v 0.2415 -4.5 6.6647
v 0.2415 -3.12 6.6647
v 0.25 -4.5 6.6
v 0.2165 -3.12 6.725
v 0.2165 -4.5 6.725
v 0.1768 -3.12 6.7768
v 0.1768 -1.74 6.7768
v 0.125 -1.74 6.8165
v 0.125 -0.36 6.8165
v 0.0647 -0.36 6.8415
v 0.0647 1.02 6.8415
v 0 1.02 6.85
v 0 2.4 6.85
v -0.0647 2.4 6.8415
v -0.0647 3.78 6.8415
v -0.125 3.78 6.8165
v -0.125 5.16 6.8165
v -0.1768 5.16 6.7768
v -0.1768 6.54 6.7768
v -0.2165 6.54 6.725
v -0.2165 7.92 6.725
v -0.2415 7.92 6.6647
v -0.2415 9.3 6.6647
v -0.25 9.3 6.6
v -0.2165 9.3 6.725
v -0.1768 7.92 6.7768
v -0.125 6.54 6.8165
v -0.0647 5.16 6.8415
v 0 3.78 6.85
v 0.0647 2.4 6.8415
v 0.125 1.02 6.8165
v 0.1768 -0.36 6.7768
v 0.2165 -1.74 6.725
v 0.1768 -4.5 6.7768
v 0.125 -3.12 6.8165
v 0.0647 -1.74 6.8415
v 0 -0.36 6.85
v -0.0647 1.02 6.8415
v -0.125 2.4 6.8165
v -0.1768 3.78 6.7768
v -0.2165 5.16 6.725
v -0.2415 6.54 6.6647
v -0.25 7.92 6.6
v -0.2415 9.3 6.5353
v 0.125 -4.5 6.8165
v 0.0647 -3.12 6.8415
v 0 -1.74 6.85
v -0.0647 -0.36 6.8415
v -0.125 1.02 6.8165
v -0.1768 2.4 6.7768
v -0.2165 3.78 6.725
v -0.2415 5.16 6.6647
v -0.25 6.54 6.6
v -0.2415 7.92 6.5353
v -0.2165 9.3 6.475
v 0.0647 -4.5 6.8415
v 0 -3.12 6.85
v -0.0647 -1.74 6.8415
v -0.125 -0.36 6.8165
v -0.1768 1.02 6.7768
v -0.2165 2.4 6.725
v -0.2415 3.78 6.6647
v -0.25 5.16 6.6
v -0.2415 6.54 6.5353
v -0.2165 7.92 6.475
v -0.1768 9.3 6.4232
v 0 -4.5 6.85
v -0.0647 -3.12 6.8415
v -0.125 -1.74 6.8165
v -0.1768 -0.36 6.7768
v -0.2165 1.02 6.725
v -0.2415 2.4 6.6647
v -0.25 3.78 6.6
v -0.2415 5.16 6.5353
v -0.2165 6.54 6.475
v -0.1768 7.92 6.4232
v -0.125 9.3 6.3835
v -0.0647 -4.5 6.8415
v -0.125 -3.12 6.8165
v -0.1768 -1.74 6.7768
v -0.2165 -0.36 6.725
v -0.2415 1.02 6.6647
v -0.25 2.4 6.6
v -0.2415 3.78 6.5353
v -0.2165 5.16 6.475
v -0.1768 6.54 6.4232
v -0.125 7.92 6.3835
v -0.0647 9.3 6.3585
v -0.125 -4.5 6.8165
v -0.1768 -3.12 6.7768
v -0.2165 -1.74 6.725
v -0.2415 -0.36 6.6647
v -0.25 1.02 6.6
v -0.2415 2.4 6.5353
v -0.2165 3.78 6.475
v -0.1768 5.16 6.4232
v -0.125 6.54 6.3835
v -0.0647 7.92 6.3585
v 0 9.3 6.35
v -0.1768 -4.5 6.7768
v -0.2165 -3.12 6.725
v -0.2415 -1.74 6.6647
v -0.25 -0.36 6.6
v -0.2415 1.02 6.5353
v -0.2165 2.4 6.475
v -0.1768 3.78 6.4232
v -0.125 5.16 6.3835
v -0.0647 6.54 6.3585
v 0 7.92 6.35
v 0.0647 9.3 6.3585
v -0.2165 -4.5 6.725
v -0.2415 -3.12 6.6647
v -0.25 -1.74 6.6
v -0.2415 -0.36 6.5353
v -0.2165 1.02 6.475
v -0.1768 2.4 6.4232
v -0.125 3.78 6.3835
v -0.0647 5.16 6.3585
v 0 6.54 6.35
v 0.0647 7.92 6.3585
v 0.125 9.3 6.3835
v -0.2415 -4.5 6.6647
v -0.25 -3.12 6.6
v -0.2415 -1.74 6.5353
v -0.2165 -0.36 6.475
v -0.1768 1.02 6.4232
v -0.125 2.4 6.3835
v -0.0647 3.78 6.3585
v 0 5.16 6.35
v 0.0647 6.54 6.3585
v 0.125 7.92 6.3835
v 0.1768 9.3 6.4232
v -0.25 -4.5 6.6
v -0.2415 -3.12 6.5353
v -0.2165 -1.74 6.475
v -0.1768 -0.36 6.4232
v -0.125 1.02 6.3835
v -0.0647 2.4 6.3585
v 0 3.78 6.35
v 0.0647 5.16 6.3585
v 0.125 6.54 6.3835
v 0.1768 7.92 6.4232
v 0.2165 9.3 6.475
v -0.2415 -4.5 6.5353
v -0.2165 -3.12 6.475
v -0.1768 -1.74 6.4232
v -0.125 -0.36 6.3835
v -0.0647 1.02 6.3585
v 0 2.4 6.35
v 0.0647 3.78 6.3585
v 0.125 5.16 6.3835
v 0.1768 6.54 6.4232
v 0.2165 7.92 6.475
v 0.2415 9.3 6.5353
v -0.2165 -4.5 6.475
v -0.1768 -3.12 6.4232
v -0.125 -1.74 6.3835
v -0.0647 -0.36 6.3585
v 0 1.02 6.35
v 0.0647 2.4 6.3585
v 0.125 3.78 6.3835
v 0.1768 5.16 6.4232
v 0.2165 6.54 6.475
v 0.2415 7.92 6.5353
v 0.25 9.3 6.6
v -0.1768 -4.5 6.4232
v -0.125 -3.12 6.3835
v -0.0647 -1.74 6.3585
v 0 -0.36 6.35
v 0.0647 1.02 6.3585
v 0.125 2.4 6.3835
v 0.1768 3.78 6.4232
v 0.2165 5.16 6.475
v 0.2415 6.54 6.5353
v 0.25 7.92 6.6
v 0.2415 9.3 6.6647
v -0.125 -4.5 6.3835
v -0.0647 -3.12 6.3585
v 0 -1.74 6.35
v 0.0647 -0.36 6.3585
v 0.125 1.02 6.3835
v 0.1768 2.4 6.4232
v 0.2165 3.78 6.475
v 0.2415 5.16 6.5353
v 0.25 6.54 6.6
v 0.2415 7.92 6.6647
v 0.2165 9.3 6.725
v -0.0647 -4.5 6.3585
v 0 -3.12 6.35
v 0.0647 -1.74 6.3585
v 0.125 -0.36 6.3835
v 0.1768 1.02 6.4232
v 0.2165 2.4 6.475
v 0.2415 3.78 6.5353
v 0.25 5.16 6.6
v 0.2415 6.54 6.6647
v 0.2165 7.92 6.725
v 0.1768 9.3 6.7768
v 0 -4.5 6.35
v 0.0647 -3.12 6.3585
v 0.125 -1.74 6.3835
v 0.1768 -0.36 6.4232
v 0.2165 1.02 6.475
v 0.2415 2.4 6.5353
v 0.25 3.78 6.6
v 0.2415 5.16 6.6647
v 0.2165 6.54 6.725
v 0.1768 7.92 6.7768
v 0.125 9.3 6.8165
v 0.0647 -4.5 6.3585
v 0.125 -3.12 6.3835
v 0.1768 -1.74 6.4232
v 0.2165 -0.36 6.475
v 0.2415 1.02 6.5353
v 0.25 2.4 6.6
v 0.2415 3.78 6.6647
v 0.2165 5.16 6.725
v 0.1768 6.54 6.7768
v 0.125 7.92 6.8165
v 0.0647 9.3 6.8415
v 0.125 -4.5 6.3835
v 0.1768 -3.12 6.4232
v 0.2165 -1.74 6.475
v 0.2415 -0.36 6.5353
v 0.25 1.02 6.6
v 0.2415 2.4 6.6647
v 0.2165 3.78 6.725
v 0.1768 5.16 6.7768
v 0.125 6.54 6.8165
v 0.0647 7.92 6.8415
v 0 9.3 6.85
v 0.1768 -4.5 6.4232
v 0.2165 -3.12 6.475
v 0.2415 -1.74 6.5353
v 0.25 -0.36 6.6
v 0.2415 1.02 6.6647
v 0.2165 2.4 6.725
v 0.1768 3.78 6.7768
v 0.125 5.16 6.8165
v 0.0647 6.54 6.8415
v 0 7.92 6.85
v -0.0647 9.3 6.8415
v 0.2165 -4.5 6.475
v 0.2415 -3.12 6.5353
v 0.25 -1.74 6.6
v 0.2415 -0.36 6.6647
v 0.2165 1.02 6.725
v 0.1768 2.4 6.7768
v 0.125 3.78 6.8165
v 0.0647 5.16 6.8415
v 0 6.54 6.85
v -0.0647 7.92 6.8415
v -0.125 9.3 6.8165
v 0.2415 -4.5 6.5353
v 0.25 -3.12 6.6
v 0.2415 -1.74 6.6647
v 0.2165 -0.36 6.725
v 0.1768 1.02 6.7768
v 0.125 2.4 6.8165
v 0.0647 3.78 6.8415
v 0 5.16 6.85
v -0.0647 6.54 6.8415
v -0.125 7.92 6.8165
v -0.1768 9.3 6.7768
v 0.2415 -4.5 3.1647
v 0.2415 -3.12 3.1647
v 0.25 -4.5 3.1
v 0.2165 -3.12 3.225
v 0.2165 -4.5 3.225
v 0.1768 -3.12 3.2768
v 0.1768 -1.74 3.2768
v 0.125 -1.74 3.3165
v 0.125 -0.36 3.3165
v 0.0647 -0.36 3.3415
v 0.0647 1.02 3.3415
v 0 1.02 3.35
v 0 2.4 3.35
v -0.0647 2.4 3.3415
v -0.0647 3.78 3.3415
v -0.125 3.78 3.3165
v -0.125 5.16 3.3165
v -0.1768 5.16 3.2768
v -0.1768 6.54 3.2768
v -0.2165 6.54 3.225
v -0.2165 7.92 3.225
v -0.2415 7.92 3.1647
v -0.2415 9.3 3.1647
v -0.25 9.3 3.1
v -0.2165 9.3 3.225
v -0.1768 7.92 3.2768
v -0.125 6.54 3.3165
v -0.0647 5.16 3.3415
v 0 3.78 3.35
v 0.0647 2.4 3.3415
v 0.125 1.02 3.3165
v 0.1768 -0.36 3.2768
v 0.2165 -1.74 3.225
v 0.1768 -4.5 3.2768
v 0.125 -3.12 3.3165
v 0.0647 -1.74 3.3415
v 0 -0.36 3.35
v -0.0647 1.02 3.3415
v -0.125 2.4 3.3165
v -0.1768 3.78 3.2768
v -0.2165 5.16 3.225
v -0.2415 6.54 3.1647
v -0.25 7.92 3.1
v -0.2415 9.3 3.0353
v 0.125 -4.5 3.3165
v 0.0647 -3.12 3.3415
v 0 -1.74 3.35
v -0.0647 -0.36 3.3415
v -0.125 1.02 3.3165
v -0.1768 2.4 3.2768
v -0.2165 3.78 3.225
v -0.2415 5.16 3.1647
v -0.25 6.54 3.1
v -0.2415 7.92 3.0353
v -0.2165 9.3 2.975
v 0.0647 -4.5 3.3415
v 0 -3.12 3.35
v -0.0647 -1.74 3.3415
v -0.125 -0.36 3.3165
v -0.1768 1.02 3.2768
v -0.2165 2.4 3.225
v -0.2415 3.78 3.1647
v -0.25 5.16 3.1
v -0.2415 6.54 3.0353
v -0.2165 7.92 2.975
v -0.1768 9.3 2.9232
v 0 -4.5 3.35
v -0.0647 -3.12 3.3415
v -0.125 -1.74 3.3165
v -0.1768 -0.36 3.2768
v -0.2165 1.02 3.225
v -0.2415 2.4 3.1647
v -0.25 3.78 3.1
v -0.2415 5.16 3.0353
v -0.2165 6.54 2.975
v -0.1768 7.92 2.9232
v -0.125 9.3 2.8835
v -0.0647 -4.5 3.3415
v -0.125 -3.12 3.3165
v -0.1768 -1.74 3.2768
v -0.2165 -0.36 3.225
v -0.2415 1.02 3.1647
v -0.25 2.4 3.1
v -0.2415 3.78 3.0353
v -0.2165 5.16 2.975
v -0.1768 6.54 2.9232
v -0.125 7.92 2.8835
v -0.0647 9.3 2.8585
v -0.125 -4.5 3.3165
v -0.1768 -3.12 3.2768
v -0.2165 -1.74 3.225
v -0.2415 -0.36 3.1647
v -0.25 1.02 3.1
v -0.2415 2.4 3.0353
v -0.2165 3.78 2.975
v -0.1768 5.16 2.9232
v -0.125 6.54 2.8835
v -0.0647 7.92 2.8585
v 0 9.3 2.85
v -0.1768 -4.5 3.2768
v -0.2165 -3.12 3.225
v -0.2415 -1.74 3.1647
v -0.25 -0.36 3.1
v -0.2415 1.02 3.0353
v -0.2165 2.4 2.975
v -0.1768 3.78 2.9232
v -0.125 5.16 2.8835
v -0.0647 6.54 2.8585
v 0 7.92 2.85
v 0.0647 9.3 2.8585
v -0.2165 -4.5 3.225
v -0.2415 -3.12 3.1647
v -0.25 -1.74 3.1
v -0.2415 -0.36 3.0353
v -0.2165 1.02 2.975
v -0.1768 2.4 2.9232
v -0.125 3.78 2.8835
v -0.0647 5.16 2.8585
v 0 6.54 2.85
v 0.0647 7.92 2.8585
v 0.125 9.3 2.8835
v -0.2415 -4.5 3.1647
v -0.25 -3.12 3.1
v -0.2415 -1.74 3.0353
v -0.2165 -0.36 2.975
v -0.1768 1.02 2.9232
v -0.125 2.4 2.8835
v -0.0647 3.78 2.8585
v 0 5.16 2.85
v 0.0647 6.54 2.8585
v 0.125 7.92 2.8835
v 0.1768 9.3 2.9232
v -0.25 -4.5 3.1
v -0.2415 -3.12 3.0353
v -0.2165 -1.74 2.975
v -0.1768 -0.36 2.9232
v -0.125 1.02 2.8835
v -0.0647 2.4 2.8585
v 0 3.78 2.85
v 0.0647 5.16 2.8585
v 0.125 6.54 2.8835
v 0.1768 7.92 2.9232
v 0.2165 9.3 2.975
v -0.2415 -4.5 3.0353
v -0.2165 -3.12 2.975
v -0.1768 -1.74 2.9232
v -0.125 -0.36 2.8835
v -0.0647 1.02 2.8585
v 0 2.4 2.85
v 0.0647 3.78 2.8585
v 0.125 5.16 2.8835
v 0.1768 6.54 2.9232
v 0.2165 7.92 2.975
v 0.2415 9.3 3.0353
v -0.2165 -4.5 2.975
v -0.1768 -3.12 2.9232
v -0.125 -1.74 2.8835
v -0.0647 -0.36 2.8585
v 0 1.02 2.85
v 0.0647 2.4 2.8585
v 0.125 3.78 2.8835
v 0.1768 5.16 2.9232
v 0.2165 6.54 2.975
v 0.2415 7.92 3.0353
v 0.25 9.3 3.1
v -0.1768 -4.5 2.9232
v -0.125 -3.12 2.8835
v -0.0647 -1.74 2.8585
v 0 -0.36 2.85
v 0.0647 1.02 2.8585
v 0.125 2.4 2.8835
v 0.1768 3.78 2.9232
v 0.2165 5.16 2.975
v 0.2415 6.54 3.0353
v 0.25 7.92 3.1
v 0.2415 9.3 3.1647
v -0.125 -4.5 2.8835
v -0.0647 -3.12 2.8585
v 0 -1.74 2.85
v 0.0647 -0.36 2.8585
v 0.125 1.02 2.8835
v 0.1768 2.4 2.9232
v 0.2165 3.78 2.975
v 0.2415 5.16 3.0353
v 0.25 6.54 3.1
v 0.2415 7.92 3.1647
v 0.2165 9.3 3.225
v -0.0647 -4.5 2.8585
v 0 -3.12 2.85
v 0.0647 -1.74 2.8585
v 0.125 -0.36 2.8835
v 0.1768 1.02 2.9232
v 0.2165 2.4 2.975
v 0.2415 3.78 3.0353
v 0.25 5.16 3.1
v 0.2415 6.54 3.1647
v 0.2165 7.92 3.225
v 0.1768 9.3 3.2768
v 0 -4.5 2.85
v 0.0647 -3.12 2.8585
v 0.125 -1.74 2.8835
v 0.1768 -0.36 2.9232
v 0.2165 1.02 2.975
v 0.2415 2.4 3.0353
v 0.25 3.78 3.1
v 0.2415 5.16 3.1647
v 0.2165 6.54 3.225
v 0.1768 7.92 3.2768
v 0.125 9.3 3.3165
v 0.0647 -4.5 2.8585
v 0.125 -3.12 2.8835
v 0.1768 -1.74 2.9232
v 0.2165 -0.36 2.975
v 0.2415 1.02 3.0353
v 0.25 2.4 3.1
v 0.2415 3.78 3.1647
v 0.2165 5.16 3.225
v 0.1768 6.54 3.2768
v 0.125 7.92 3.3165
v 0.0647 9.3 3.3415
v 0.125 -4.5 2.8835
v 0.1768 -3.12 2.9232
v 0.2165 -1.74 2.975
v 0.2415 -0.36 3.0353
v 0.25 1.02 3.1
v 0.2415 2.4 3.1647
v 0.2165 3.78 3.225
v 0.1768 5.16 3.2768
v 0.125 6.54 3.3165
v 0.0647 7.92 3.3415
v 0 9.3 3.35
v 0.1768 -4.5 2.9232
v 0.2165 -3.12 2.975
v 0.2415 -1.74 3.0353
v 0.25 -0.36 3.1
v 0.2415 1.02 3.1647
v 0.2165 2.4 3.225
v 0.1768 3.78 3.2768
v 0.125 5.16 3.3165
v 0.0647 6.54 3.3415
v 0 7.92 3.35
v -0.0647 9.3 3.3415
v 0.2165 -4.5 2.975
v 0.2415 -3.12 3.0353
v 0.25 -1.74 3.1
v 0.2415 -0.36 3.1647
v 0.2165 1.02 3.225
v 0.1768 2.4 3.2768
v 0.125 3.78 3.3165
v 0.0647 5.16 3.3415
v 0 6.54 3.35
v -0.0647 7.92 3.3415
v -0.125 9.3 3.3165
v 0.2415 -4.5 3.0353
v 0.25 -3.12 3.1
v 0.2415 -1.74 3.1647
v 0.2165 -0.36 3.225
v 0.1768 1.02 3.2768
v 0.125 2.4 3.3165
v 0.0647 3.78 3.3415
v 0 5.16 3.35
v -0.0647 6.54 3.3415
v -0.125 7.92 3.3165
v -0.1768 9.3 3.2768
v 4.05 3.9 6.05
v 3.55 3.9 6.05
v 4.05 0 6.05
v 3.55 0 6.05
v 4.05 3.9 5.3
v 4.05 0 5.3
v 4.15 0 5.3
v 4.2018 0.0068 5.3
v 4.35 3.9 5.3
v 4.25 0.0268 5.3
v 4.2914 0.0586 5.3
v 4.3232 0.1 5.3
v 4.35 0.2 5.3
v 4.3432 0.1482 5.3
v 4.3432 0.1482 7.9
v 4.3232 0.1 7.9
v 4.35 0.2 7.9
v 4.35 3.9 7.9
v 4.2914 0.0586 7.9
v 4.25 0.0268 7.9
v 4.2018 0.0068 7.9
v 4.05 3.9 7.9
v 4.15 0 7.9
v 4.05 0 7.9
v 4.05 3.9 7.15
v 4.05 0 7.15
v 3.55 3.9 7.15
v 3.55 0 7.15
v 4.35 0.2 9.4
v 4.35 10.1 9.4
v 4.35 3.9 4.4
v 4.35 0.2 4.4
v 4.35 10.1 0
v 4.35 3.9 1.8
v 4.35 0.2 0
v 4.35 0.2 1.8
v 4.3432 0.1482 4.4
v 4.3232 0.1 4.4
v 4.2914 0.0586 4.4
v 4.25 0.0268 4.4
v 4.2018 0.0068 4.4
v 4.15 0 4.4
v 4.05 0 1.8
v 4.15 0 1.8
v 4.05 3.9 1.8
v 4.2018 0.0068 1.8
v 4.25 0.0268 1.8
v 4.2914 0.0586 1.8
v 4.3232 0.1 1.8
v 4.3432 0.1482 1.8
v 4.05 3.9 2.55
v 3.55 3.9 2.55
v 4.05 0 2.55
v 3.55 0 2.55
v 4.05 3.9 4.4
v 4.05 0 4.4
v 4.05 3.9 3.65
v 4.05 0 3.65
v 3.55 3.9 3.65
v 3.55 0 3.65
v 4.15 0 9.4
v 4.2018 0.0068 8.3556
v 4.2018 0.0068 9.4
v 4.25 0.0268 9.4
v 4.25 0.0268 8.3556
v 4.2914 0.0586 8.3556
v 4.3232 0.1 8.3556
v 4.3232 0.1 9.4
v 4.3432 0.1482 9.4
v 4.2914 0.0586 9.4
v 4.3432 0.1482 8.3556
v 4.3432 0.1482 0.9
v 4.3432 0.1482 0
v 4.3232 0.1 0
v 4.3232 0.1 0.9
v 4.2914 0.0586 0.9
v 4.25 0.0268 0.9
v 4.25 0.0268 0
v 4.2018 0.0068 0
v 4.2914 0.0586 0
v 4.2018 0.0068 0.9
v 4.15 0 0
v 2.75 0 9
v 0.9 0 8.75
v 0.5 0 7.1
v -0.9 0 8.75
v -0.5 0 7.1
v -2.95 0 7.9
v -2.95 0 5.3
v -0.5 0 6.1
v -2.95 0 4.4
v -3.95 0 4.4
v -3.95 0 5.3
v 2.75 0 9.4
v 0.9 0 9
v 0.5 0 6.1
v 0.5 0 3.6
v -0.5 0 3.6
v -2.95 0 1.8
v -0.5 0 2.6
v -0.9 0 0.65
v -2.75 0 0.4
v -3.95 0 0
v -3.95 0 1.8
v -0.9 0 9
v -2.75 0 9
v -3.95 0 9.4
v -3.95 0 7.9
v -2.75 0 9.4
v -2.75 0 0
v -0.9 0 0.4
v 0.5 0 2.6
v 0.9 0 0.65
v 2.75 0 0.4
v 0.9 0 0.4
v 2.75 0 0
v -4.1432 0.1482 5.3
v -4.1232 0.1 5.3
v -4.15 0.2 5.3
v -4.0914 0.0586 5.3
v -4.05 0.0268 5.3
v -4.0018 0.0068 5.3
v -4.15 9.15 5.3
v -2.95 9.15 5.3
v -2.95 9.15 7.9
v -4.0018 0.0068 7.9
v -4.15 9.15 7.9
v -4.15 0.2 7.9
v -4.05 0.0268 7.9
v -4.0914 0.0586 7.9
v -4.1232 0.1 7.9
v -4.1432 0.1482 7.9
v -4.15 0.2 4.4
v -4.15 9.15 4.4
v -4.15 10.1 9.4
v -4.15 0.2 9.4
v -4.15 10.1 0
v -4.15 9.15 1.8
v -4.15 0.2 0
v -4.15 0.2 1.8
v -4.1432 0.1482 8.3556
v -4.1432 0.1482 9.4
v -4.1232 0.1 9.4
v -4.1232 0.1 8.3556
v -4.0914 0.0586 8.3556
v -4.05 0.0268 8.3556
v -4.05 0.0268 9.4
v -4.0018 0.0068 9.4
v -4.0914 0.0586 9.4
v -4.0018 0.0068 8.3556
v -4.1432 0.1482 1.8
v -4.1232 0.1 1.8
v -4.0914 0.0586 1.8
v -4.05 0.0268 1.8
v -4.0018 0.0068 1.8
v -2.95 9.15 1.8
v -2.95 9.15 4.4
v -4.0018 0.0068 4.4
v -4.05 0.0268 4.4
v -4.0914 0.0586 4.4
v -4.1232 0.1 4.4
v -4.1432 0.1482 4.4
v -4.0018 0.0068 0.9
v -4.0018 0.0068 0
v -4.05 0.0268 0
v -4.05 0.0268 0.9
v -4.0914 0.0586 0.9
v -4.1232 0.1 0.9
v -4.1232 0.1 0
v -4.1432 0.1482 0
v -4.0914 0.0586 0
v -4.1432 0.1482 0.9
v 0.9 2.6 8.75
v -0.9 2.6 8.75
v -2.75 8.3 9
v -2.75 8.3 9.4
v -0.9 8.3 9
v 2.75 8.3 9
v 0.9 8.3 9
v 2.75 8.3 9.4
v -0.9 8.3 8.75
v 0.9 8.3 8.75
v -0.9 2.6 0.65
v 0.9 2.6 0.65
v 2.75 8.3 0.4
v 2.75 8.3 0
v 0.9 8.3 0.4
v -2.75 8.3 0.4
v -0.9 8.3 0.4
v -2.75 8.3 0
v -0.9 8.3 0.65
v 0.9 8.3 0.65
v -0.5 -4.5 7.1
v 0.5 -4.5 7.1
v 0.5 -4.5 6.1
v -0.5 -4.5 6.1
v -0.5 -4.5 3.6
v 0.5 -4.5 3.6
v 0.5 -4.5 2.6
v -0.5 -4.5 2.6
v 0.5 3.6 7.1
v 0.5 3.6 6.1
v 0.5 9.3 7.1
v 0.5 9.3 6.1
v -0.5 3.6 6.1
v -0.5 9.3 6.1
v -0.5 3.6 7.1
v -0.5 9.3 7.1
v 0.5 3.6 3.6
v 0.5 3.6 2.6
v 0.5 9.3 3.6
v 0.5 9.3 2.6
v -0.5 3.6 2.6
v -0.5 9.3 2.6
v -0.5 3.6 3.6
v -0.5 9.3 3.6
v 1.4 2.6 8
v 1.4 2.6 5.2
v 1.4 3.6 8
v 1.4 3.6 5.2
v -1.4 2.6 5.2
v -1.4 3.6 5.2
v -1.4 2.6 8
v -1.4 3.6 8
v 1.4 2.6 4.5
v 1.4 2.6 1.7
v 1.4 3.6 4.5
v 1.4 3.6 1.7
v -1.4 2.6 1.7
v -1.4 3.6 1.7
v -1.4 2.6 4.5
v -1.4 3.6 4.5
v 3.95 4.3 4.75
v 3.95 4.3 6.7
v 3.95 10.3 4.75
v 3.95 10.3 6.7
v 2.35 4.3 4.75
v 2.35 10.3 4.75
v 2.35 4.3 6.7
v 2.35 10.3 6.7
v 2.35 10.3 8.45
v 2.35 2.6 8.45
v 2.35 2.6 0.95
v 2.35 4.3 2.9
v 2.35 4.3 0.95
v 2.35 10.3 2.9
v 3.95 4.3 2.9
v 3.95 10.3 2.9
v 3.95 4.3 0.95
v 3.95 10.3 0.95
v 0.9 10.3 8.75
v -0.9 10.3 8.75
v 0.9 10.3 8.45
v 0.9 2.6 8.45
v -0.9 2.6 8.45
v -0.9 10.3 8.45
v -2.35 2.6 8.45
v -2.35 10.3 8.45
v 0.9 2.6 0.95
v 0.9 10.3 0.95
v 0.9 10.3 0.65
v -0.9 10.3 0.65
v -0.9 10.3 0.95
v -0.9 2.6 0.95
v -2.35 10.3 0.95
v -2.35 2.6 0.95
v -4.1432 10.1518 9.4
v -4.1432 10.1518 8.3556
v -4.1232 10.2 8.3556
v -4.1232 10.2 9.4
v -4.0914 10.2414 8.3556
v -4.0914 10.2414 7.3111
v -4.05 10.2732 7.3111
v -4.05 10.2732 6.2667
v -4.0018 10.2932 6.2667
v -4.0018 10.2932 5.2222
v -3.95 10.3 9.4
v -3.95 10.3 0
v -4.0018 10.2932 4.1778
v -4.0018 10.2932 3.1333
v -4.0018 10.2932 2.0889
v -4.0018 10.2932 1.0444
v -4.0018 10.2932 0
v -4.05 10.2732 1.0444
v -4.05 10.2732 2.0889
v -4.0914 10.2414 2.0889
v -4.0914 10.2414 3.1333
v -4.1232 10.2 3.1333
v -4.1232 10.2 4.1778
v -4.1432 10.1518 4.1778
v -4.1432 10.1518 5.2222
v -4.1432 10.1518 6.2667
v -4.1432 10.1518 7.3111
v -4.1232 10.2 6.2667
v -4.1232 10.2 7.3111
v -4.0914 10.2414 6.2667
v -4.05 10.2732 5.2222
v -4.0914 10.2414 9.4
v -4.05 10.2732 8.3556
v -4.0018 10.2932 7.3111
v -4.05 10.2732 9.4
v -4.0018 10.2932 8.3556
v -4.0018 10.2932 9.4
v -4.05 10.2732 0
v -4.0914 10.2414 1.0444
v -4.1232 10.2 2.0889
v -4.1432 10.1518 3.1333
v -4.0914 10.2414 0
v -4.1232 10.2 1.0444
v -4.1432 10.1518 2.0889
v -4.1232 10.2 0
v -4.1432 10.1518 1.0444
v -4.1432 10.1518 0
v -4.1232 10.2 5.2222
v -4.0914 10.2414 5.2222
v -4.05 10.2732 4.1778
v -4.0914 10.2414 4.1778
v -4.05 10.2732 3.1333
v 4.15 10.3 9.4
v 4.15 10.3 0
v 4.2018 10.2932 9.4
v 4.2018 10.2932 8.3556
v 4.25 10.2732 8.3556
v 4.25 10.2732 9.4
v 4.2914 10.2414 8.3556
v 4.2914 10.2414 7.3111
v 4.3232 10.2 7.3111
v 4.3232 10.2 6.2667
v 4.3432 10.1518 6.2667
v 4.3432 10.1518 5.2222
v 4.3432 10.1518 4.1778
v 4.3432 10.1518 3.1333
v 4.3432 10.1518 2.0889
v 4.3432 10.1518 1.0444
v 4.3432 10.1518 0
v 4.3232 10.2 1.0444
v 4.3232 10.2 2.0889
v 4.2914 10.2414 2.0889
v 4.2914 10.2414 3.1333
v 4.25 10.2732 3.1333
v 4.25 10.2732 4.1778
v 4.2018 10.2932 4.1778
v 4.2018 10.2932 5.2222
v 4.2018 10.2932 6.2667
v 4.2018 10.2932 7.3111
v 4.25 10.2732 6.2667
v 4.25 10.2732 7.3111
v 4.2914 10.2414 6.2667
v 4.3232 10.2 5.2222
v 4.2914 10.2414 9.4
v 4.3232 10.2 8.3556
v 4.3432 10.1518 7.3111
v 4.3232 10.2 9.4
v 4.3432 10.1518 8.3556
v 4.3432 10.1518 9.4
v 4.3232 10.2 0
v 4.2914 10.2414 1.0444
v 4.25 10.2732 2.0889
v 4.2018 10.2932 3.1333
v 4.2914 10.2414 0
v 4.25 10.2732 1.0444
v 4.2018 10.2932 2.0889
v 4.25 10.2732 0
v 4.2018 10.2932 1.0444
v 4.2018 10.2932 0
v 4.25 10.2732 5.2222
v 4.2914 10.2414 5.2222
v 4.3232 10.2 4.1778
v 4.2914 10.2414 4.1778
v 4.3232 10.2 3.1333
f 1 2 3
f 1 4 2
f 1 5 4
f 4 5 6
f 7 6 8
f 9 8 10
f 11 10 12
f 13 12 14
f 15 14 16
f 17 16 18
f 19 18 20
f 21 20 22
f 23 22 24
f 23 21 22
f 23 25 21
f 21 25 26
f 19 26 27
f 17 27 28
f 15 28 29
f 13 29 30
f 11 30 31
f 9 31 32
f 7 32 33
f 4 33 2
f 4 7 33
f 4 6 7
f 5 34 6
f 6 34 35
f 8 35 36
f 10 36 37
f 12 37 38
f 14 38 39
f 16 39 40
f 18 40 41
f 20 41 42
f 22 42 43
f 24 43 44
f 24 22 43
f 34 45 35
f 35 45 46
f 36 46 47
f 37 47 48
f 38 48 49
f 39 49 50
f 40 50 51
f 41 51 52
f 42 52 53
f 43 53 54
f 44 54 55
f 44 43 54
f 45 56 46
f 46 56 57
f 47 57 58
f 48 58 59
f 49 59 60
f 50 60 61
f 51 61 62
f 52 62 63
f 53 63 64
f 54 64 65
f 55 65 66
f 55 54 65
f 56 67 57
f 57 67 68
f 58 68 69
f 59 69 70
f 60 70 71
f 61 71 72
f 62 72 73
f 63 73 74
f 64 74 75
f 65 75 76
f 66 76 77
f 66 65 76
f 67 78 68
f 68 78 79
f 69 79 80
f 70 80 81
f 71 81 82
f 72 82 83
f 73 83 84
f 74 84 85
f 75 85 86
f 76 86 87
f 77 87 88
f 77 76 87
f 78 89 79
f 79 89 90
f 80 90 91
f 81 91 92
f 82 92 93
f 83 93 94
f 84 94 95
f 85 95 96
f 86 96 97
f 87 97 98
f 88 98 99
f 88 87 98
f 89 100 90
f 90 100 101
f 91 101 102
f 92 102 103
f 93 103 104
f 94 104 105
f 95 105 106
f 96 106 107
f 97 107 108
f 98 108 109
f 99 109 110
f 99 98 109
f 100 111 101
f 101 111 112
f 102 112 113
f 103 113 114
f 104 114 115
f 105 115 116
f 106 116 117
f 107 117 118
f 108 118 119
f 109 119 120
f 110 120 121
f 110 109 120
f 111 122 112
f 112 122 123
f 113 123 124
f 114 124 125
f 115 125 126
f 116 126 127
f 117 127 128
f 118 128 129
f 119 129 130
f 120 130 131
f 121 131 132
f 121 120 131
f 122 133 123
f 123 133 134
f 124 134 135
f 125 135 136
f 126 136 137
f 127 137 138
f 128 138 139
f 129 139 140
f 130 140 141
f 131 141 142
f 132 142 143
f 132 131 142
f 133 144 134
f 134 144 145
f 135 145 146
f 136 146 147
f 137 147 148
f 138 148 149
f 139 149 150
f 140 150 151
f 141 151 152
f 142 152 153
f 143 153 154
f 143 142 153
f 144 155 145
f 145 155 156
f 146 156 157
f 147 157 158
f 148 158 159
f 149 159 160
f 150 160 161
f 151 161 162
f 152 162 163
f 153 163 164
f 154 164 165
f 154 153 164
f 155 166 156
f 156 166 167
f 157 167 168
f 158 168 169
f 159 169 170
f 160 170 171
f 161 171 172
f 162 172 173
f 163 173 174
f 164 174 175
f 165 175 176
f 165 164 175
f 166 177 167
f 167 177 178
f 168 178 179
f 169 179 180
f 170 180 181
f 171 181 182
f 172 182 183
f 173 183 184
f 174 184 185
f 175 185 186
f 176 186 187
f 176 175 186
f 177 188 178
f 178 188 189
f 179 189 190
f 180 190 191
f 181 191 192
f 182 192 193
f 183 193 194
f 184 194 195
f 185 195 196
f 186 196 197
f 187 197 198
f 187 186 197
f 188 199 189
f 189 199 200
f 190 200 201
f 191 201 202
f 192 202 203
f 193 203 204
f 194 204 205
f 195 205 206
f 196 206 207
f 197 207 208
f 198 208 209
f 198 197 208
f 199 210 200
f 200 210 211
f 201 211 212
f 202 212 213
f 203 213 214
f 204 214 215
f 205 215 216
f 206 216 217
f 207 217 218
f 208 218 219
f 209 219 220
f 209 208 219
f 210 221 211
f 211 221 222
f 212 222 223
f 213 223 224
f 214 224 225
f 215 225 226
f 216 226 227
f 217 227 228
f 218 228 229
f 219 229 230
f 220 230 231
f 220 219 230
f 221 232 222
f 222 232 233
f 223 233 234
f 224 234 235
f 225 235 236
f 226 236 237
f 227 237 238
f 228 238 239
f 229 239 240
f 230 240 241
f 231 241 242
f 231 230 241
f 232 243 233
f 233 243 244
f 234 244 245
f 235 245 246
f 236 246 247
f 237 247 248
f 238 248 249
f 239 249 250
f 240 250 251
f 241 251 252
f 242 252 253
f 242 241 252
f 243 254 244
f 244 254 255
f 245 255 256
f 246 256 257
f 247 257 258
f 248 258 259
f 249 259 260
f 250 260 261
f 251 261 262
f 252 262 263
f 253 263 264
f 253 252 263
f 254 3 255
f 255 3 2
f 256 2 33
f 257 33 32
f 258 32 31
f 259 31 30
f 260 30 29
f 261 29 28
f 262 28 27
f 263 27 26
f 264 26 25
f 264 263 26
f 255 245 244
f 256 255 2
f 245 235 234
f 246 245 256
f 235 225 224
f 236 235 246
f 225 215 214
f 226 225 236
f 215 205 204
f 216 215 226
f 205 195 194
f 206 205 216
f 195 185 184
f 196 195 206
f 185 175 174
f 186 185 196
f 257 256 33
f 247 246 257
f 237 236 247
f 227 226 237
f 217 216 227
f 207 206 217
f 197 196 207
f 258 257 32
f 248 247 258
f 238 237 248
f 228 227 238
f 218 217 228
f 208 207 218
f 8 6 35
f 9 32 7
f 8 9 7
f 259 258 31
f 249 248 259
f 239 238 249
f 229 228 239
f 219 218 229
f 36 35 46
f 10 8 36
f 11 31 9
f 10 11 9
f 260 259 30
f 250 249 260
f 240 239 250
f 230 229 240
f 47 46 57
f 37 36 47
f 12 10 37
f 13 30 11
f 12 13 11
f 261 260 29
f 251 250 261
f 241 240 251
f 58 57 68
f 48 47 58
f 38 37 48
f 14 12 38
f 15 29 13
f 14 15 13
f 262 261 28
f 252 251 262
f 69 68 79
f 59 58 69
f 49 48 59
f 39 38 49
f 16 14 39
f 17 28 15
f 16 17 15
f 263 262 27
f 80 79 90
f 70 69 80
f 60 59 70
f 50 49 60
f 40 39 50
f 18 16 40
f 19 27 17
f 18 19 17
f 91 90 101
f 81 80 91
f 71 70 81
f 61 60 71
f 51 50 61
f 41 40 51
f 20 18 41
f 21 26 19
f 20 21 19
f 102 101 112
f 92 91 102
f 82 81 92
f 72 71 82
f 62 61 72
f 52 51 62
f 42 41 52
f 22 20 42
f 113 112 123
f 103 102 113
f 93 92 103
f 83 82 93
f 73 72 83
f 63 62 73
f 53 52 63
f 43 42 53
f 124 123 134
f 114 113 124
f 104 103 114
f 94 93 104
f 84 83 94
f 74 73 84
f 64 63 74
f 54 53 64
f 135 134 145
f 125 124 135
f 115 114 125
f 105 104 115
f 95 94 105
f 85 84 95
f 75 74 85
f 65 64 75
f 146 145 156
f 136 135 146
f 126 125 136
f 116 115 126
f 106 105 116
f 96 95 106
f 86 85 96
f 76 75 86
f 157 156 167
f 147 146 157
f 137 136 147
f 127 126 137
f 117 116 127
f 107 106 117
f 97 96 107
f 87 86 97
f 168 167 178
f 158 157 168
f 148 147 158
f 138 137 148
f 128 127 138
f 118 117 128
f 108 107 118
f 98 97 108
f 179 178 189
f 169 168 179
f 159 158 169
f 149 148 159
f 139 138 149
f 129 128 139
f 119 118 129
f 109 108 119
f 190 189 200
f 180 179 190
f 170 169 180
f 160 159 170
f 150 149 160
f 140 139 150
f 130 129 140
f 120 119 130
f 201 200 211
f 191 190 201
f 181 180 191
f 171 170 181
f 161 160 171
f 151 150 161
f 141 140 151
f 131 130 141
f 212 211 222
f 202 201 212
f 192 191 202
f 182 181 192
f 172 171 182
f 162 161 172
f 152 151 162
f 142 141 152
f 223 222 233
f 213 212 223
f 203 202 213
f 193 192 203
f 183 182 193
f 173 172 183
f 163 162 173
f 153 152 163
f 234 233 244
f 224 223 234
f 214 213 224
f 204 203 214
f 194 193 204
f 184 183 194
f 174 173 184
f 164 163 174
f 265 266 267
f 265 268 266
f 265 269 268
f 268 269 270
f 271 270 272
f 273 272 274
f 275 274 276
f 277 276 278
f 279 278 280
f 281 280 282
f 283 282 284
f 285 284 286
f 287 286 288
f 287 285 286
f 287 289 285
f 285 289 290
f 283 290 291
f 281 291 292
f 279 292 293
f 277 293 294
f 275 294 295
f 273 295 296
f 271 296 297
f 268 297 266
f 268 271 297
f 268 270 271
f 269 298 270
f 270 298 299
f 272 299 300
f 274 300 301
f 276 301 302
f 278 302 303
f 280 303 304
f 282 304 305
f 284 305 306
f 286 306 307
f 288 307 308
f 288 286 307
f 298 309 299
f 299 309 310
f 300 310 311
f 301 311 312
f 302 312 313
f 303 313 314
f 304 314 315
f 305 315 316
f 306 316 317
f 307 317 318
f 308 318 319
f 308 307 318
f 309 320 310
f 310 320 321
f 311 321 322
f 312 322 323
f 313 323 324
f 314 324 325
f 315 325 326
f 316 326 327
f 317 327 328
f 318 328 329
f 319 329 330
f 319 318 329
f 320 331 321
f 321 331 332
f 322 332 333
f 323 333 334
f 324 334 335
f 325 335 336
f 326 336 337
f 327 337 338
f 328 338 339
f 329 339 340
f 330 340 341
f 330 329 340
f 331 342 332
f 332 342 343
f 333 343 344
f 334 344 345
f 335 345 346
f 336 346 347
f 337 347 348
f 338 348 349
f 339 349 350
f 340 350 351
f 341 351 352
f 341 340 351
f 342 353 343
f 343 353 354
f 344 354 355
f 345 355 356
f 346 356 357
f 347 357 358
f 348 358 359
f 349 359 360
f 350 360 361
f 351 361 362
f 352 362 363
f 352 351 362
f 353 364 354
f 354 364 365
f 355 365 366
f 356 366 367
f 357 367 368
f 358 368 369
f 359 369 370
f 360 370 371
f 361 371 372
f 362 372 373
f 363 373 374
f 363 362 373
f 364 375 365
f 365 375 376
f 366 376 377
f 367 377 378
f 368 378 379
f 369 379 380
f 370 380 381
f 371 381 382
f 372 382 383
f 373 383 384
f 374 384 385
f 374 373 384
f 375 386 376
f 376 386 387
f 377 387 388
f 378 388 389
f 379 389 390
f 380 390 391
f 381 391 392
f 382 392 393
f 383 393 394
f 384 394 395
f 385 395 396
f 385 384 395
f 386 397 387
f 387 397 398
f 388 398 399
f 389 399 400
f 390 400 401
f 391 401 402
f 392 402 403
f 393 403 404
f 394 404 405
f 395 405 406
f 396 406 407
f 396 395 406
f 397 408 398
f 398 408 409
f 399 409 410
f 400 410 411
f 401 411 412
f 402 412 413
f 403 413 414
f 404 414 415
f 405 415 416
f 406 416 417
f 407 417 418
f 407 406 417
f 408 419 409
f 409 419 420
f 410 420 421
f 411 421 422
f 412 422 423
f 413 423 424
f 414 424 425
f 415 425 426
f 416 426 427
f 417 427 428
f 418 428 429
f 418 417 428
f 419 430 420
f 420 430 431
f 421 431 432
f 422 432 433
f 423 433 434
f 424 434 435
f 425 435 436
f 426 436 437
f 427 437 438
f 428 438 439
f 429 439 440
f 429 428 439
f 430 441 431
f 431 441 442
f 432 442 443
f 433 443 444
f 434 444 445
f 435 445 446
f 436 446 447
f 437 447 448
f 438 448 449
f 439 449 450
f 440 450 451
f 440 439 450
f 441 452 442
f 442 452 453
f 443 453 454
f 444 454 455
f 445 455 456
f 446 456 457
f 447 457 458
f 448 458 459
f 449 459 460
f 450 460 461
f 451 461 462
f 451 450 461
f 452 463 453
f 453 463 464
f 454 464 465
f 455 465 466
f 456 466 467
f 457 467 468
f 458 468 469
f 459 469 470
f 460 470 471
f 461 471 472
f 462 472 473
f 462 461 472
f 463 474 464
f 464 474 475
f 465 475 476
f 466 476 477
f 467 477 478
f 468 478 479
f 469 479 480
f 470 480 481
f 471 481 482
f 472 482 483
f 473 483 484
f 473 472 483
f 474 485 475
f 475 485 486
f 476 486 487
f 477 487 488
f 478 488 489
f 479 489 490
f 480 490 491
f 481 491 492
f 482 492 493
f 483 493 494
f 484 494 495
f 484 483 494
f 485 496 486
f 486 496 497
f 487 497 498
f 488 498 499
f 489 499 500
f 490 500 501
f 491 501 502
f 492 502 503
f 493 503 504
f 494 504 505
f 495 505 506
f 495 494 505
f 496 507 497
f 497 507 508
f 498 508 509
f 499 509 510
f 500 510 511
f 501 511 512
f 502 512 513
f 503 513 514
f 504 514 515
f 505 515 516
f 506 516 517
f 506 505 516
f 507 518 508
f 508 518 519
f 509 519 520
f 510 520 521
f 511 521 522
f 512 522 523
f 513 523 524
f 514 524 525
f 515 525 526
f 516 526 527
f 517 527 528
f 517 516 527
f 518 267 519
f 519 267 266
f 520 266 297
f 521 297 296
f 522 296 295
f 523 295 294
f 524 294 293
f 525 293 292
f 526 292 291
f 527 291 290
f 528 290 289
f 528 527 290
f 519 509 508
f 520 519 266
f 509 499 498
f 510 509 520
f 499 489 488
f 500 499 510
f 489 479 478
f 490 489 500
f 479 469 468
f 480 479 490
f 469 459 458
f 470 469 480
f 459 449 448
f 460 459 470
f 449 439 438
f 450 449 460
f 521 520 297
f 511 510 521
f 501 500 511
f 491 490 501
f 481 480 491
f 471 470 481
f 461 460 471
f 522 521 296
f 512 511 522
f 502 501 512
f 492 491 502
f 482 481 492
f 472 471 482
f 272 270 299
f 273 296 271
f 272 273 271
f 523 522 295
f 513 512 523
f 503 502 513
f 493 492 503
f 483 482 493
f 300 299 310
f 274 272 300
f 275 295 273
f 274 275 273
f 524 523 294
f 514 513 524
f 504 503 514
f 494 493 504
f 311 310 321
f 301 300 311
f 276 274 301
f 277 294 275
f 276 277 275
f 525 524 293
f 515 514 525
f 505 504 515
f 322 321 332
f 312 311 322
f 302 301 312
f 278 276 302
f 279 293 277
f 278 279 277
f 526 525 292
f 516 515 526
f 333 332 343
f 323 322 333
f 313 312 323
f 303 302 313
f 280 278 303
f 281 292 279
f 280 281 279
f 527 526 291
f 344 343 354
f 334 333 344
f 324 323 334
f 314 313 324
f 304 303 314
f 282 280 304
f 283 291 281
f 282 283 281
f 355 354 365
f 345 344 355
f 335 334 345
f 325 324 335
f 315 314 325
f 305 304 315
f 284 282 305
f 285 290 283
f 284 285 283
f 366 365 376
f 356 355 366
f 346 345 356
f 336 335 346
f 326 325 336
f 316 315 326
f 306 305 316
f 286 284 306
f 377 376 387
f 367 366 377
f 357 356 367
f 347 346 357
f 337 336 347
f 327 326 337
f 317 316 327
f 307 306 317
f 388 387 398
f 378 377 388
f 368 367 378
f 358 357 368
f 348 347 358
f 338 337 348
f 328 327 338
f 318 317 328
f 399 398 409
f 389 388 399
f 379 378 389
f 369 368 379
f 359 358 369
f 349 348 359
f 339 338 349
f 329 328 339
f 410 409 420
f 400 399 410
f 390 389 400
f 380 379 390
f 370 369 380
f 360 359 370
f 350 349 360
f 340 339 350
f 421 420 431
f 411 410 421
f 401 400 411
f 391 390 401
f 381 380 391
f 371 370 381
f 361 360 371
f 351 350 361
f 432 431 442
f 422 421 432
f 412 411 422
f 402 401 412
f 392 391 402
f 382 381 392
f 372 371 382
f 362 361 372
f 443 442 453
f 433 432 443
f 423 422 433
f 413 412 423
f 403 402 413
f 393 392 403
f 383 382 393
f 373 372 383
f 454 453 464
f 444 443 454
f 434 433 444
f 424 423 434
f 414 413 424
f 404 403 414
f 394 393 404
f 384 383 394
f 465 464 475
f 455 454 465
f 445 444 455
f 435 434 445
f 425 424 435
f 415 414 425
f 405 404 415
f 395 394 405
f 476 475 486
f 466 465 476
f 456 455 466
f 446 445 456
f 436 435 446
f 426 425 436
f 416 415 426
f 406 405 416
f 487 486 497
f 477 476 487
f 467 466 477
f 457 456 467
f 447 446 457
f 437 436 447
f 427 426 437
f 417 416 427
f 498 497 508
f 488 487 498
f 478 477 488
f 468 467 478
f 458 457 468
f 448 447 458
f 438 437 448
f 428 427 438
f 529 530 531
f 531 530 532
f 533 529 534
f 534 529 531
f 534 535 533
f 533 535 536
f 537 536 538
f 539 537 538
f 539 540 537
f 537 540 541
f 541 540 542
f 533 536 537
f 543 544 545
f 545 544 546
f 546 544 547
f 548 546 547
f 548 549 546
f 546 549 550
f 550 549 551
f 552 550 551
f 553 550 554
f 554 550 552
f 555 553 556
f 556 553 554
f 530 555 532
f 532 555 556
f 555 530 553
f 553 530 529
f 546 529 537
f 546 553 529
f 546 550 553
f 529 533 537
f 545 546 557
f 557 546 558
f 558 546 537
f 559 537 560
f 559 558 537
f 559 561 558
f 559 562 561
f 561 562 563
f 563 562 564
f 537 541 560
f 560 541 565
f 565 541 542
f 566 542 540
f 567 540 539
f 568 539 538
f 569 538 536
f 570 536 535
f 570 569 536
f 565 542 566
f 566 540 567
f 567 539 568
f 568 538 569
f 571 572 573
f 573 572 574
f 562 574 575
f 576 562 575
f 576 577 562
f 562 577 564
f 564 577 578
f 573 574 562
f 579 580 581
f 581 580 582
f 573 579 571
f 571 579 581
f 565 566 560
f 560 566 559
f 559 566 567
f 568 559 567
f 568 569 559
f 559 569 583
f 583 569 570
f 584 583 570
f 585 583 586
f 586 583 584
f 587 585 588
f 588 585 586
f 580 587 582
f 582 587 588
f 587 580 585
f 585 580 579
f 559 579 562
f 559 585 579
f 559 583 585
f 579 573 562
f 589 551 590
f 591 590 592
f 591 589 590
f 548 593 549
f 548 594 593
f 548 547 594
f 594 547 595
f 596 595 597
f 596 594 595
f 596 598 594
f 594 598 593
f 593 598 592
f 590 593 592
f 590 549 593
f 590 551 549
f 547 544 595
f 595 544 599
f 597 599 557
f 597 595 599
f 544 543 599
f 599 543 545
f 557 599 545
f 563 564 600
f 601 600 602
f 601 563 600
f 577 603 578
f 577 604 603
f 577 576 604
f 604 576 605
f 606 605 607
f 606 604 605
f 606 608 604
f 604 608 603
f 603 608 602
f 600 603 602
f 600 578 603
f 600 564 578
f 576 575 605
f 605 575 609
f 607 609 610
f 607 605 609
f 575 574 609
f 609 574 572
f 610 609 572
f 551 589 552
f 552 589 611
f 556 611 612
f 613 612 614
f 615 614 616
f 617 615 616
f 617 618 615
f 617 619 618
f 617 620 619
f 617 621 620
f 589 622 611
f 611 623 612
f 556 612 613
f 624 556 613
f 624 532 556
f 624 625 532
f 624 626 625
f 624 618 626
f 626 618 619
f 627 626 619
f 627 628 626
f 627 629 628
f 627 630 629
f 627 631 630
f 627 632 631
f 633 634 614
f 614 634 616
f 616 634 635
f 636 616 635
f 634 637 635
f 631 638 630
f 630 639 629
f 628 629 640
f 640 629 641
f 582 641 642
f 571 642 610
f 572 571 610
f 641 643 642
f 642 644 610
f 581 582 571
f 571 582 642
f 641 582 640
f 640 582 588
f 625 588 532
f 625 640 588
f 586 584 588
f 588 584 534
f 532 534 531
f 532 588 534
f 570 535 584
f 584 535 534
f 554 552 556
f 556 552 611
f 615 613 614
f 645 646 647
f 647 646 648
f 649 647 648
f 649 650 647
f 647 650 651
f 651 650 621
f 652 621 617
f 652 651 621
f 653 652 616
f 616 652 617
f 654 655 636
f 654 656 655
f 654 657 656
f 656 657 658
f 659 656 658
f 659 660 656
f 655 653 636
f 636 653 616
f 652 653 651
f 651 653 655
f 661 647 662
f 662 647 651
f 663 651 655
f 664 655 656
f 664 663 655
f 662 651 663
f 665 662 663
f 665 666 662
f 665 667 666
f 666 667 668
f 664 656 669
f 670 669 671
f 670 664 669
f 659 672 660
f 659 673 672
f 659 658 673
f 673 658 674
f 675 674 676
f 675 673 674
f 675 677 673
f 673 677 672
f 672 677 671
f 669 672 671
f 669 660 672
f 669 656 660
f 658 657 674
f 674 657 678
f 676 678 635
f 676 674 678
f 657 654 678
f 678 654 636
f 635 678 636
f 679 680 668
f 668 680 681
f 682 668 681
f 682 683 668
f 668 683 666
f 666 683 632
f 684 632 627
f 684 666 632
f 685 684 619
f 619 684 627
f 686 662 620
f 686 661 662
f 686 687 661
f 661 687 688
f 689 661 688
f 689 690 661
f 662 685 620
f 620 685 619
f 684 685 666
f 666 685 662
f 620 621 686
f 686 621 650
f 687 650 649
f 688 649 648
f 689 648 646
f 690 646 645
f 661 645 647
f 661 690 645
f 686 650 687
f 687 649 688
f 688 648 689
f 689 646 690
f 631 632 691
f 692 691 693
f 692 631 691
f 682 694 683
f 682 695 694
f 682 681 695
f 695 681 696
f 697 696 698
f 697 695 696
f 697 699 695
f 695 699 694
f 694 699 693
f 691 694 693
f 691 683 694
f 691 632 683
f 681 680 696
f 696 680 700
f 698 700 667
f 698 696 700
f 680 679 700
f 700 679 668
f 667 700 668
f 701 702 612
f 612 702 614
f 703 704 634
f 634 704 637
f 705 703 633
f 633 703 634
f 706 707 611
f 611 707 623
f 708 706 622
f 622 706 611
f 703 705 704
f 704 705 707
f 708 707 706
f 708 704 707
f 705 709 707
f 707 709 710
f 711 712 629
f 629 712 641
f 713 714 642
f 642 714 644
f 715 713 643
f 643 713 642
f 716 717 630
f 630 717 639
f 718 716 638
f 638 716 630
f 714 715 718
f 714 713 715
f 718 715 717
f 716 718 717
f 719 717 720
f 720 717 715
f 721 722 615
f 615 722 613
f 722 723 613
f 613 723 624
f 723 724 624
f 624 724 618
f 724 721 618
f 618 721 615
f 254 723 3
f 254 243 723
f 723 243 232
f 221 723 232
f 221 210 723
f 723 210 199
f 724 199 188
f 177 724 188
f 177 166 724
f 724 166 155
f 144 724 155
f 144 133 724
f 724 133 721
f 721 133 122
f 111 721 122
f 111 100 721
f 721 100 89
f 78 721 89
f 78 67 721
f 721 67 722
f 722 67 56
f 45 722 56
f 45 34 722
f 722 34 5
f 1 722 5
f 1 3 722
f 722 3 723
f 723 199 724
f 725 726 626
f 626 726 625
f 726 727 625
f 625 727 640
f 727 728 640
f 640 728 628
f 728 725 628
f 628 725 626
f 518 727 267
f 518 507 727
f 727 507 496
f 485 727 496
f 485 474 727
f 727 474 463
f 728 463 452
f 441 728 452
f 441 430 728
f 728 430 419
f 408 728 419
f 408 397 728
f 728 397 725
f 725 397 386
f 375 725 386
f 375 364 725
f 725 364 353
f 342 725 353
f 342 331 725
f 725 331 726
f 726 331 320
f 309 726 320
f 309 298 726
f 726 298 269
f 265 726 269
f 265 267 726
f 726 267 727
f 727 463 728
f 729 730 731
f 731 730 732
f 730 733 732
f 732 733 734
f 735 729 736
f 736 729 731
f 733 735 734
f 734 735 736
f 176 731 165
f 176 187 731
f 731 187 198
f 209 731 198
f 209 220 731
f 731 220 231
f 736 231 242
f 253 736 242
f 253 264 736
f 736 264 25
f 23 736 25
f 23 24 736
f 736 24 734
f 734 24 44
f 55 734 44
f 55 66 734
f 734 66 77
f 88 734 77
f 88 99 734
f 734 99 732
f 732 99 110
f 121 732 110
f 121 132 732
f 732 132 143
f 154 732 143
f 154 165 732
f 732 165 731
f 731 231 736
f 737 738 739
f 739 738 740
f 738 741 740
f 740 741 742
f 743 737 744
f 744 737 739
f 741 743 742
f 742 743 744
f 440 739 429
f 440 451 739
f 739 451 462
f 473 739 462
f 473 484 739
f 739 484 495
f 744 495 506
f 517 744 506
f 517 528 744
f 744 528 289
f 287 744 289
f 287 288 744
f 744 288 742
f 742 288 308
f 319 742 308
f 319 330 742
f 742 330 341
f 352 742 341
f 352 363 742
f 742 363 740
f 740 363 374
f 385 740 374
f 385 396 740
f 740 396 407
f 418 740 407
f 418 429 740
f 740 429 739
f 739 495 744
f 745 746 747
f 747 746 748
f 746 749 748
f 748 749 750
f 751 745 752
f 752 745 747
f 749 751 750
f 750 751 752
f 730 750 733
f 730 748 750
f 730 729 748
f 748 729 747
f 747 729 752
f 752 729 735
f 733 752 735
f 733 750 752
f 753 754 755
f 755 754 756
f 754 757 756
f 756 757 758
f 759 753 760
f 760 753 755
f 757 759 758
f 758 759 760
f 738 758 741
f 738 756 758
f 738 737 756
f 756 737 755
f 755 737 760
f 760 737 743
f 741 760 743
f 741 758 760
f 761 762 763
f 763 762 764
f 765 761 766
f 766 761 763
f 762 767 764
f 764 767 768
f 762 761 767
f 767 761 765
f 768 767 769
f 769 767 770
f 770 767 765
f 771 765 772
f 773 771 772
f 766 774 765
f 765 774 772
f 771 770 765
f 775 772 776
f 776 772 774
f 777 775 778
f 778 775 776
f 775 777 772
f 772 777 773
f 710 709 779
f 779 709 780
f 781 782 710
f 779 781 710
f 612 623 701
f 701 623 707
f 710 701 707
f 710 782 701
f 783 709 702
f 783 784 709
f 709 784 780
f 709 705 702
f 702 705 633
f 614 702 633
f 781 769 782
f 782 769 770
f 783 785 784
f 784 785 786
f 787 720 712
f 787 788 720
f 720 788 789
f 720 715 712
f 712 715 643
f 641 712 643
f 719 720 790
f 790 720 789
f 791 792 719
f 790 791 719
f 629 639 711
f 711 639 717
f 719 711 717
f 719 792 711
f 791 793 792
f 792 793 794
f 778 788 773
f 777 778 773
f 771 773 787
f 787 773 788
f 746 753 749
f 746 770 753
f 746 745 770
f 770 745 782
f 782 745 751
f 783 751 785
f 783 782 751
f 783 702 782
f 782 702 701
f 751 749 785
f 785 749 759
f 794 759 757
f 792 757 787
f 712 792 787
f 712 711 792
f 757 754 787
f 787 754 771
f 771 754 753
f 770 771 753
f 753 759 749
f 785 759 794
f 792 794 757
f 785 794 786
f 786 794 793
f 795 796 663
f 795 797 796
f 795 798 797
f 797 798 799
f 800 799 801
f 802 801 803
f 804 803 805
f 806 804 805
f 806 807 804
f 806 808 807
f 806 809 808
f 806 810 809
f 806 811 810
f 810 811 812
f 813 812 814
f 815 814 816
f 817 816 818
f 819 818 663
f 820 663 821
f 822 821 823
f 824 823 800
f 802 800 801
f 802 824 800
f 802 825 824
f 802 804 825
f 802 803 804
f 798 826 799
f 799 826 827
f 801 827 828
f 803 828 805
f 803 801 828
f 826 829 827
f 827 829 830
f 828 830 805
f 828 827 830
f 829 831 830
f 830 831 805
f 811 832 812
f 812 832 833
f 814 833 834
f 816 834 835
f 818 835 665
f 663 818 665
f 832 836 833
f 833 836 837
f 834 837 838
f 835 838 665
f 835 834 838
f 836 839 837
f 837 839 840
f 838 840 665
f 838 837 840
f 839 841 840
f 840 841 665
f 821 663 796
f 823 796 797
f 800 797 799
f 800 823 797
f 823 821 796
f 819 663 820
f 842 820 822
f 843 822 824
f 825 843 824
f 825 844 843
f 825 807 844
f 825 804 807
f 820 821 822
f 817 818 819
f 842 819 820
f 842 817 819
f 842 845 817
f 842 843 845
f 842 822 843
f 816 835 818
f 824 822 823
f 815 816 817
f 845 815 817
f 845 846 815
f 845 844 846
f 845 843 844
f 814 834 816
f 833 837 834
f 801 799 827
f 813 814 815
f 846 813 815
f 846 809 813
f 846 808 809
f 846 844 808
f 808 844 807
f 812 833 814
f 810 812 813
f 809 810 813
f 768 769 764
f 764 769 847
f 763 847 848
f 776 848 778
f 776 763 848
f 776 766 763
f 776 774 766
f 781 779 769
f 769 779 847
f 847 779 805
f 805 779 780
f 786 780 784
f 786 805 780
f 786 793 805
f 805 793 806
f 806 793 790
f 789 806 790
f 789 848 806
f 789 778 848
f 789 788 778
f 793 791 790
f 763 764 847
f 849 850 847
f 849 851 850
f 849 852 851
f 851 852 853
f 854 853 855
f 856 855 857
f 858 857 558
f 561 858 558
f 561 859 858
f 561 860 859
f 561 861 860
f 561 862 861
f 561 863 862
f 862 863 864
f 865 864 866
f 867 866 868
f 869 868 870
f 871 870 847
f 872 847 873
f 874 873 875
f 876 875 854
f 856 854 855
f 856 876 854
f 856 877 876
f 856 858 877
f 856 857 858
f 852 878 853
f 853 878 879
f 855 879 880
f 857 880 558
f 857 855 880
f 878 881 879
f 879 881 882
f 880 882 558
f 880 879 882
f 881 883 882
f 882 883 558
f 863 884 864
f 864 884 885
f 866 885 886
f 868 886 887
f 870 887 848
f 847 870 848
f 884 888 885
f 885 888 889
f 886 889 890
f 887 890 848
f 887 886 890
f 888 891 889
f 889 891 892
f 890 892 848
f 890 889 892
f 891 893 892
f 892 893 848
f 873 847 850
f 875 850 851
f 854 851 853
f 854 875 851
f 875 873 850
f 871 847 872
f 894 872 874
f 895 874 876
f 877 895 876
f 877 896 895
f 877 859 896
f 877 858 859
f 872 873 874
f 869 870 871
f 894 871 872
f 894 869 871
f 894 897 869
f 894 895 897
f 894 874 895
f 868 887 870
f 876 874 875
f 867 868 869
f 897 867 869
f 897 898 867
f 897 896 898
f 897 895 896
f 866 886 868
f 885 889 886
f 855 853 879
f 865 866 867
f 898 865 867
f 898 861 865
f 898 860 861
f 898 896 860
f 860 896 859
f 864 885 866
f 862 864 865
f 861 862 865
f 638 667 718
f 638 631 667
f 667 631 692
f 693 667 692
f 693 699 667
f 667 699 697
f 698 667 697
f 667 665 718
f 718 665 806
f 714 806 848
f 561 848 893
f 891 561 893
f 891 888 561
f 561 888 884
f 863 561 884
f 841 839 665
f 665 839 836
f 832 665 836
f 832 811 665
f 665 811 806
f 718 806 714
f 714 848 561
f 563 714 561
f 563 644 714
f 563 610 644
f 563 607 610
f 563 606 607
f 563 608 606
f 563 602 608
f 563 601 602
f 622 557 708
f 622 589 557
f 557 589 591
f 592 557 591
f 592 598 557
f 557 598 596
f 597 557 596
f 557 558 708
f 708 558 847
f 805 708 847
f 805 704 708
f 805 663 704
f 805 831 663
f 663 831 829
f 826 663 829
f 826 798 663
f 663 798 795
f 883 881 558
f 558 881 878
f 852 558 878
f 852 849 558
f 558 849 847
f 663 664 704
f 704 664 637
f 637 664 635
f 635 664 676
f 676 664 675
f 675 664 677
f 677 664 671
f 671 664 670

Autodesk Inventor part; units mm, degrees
ref_plane "YZ Plane" through (0, 0, 0) normal (1, 0, 0) x (0, 1, 0)
ref_plane "XZ Plane" through (0, 0, 0) normal (0, 1, 0) x (-1, 0, 0)
ref_plane "XY Plane" through (0, 0, 0) normal (0, 0, 1) x (1, 0, 0)
sketch "Skizze_1" plane through (0, 0, 0) normal (0, 0, 1) x (1, 0, 0)
  arc A0 (-4.15, 0.2) -> (-3.95, 0) centre (-3.95, 0.2) ccw
  line L0 (-3.95, 0) -> (4.15, 0)
  arc A1 (4.15, 0) -> (4.35, 0.2) centre (4.15, 0.2) ccw
  line L1 (4.35, 0.2) -> (4.35, 10.1)
  arc A2 (4.35, 10.1) -> (4.15, 10.3) centre (4.15, 10.1) ccw
  line L2 (4.15, 10.3) -> (-3.95, 10.3)
  arc A3 (-3.95, 10.3) -> (-4.15, 10.1) centre (-3.95, 10.1) ccw
  line L3 (-4.15, 10.1) -> (-4.15, 0.2)
extrude "Extrusion1" add sketch "Skizze_1" along normal blind 9.4
sketch "Skizze_2" plane through (0, 0, 0.95) normal (0, 0, 1) x (1, 0, 0)
  line L0 (-2.35, 10.3) -> (-2.35, 2.6)
  line L1 (-2.35, 2.6) -> (2.35, 2.6)
  line L2 (2.35, 2.6) -> (2.35, 10.3)
  line L3 (2.35, 10.3) -> (-2.35, 10.3)
extrude "Extrusion2" cut sketch "Skizze_2" along normal blind 7.5
sketch "Skizze_3" plane through (0, 10.3, 0) normal (0, 1, 0) x (1, 0, 0)
  line L0 (-0.9, -0.95) -> (0.9, -0.95)
  line L1 (0.9, -0.95) -> (0.9, -0.65)
  line L2 (0.9, -0.65) -> (-0.9, -0.65)
  line L3 (-0.9, -0.65) -> (-0.9, -0.95)
extrude "Extrusion3" cut sketch "Skizze_3" against normal blind 7.7
sketch "Skizze_4" plane through (0, 10.3, 0) normal (0, 1, 0) x (1, 0, 0)
  line L0 (-0.9, -8.45) -> (-0.9, -8.75)
  line L1 (-0.9, -8.75) -> (0.9, -8.75)
  line L2 (0.9, -8.75) -> (0.9, -8.45)
  line L3 (0.9, -8.45) -> (-0.9, -8.45)
extrude "Extrusion4" cut sketch "Skizze_4" against normal blind 7.7
sketch "Skizze_5" plane through (0, 10.3, 0) normal (0, 1, 0) x (1, 0, 0)
  line L0 (2.35, -0.95) -> (2.35, -2.9)
  line L1 (2.35, -2.9) -> (3.95, -2.9)
  line L2 (3.95, -2.9) -> (3.95, -0.95)
  line L3 (3.95, -0.95) -> (2.35, -0.95)
extrude "Extrusion5" cut sketch "Skizze_5" against normal blind 6
sketch "Skizze_6" plane through (0, 10.3, 0) normal (0, 1, 0) x (1, 0, 0)
  line L0 (2.35, -6.7) -> (3.95, -6.7)
  line L1 (3.95, -6.7) -> (3.95, -4.75)
  line L2 (3.95, -4.75) -> (2.35, -4.75)
  line L3 (2.35, -4.75) -> (2.35, -6.7)
extrude "Extrusion6" cut sketch "Skizze_6" against normal blind 6
sketch "Skizze_7" plane through (0, 0, 0) normal (0, 1, 0) x (-1, 0, 0)
  line L0 (1.4, 1.7) -> (1.4, 4.5)
  line L1 (1.4, 4.5) -> (-1.4, 4.5)
  line L2 (-1.4, 4.5) -> (-1.4, 1.7)
  line L3 (-1.4, 1.7) -> (1.4, 1.7)
extrude "Extrusion7" add sketch "Skizze_7" along normal blind 3.6
pattern_linear "Rectangular Pattern1" count 2 spacing 3.5 along (0, 0, 1) of "Extrusion7"
sketch "Skizze_9" plane through (0, 0, 0) normal (0, 1, 0) x (-1, 0, 0)
  line L0 (0.5, 2.6) -> (0.5, 3.6)
  line L1 (0.5, 3.6) -> (-0.5, 3.6)
  line L2 (-0.5, 3.6) -> (-0.5, 2.6)
  line L3 (-0.5, 2.6) -> (0.5, 2.6)
extrude "Extrusion8" add sketch "Skizze_9" along normal blind 9.3
pattern_linear "Rectangular Pattern2" count 2 spacing 3.5 along (0, 0, 1) of "Extrusion8"
sketch "Skizze_11" plane through (0, 0, 0) normal (0, 1, 0) x (-1, 0, 0)
  line L0 (0.5, 2.6) -> (0.5, 3.6)
  line L1 (0.5, 3.6) -> (-0.5, 3.6)
  line L2 (-0.5, 3.6) -> (-0.5, 2.6)
  line L3 (-0.5, 2.6) -> (0.5, 2.6)
extrude "Extrusion9" add sketch "Skizze_11" against normal blind 4.5
pattern_linear "Rectangular Pattern3" count 2 spacing 3.5 along (0, 0, 1) of "Extrusion9"
sketch "Skizze_13" plane through (0, 0, 0) normal (0, 1, 0) x (-1, 0, 0)
  line L0 (2.75, 0) -> (2.75, 0.4)
  line L1 (2.75, 0.4) -> (0.9, 0.4)
  line L2 (0.9, 0.4) -> (0.9, 0.65)
  line L3 (0.9, 0.65) -> (-0.9, 0.65)
  line L4 (-0.9, 0.65) -> (-0.9, 0.4)
  line L5 (-0.9, 0.4) -> (-2.75, 0.4)
  line L6 (-2.75, 0.4) -> (-2.75, 0)
  line L7 (-2.75, 0) -> (2.75, 0)
extrude "Extrusion10" cut sketch "Skizze_13" along normal blind 8.3
sketch "Skizze_14" plane through (0, 0, 0) normal (0, 1, 0) x (-1, 0, 0)
  line L0 (2.75, 9.4) -> (-2.75, 9.4)
  line L1 (-2.75, 9.4) -> (-2.75, 9)
  line L2 (-2.75, 9) -> (-0.9, 9)
  line L3 (-0.9, 9) -> (-0.9, 8.75)
  line L4 (-0.9, 8.75) -> (0.9, 8.75)
  line L5 (0.9, 8.75) -> (0.9, 9)
  line L6 (0.9, 9) -> (2.75, 9)
  line L7 (2.75, 9) -> (2.75, 9.4)
extrude "Extrusion11" cut sketch "Skizze_14" along normal blind 8.3
sketch "Skizze_15" plane through (0, 0, 0) normal (0, 1, 0) x (-1, 0, 0)
  line L0 (4.15, 1.8) -> (4.15, 4.4)
  line L1 (4.15, 4.4) -> (2.95, 4.4)
  line L2 (2.95, 4.4) -> (2.95, 1.8)
  line L3 (2.95, 1.8) -> (4.15, 1.8)
extrude "Extrusion12" cut sketch "Skizze_15" along normal blind 9.15
pattern_linear "Rectangular Pattern4" count 2 spacing 3.5 along (0, 0, 1) of "Extrusion12"
sketch "Skizze_17" plane through (0, 0, 0) normal (0, 1, 0) x (-1, 0, 0)
  line L0 (-3.55, 2.55) -> (-3.55, 3.65)
  line L1 (-3.55, 3.65) -> (-4.05, 3.65)
  line L2 (-4.05, 3.65) -> (-4.05, 4.4)
  line L3 (-4.05, 4.4) -> (-4.35, 4.4)
  line L4 (-4.35, 4.4) -> (-4.35, 1.8)
  line L5 (-4.35, 1.8) -> (-4.05, 1.8)
  line L6 (-4.05, 1.8) -> (-4.05, 2.55)
  line L7 (-4.05, 2.55) -> (-3.55, 2.55)
extrude "Extrusion13" cut sketch "Skizze_17" along normal blind 3.9
sketch "Skizze_18" plane through (0, 0, 0) normal (0, 1, 0) x (-1, 0, 0)
  line L0 (-3.55, 6.05) -> (-3.55, 7.15)
  line L1 (-3.55, 7.15) -> (-4.05, 7.15)
  line L2 (-4.05, 7.15) -> (-4.05, 7.9)
  line L3 (-4.05, 7.9) -> (-4.35, 7.9)
  line L4 (-4.35, 7.9) -> (-4.35, 5.3)
  line L5 (-4.35, 5.3) -> (-4.05, 5.3)
  line L6 (-4.05, 5.3) -> (-4.05, 6.05)
  line L7 (-4.05, 6.05) -> (-3.55, 6.05)
extrude "Extrusion14" cut sketch "Skizze_18" along normal blind 3.9
sketch "Sketch15" plane through (-0.5, 9.3, 6.1) normal (0, 1, 0) x (1, 0, 0)
  line L0 (0, 0) -> (1, 0) projected
  line L1 (0, -1) -> (0, 0) projected
  line L2 (1, -1) -> (0, -1) projected
  line L3 (1, 0) -> (1, -1) projected
  line L4 (0, -1) -> (1, 0) construction
  point P0 (0.5, 6.1)
  point P1 (0.5, -0.5)
sketch "Sketch16" plane through (-0.5, 9.3, 6.1) normal (0, 1, 0) x (1, 0, 0)
  line L0 (0, 3.5) -> (1, 3.5) construction
  line L1 (0, 2.5) -> (0, 3.5) construction
  line L2 (1, 2.5) -> (0, 2.5) construction
  line L3 (1, 3.5) -> (1, 2.5) construction
  line L4 (0, 0) -> (1, 0) construction
  line L5 (0, -1) -> (0, 0) construction
  line L6 (1, -1) -> (0, -1) construction
  line L7 (1, 0) -> (1, -1) construction
  line L8 (1, -1) -> (0, 0) construction
  line L9 (1, 2.5) -> (0, 3.5) construction
  circle A0 centre (0.5, 3) radius 0.25
  circle A1 centre (0.5, -0.5) radius 0.25
  point P0 (0.5, 6.1)
  dimension "d52" = 0.5
extrude "Extrusion15" cut sketch "Sketch16" against normal through all
properties part number "Wago Power In"
